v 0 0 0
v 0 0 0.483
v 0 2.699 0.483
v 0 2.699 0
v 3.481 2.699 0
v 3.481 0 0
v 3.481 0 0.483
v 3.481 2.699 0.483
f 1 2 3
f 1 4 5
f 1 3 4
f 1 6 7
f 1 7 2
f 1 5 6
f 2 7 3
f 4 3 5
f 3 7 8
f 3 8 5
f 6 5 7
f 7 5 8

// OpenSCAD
/* Warning, this is a very basic generator with a lot of approximation 
input data : [WLCSP, G2B, 3.481x2.699x0.483mm, 45, , A, C04-21255A]
generated by com.zoubworld.electronics.cad.model3d.Basic
Date : Sun Feb 15 10:50:49 CET 2026
*/

//body
color("black")
translate([0,0,0])
cube([3.481,2.699,0.483], center=false);
